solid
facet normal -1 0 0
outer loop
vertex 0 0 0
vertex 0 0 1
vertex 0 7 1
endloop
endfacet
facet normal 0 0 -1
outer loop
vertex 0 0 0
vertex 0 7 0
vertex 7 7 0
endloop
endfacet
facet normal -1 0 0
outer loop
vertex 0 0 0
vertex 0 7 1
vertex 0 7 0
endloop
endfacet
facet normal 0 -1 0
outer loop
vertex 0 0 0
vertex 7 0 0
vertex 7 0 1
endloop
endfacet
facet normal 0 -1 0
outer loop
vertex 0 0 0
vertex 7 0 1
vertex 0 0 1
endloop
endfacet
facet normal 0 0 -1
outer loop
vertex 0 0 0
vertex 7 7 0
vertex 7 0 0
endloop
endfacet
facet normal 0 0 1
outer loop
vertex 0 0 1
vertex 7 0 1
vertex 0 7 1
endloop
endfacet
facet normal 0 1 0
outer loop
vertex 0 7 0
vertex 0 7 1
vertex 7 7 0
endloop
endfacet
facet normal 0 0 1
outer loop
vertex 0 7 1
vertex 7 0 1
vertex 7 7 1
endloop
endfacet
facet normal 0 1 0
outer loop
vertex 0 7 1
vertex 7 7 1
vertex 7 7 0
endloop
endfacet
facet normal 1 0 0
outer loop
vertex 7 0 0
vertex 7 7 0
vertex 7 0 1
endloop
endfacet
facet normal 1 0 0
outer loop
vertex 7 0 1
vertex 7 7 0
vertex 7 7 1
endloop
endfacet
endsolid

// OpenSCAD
/* Warning, this is a very basic generator with a lot of approximation 
input data : [VFLGA, 8WX, 7x7x1.0mm, 56, , B, C04-00384B]
generated by com.zoubworld.electronics.cad.model3d.Basic
Date : Sun Feb 15 10:50:48 CET 2026
*/

//body
color("black")
translate([0,0,0])
cube([7.0,7.0,1.0], center=false);
